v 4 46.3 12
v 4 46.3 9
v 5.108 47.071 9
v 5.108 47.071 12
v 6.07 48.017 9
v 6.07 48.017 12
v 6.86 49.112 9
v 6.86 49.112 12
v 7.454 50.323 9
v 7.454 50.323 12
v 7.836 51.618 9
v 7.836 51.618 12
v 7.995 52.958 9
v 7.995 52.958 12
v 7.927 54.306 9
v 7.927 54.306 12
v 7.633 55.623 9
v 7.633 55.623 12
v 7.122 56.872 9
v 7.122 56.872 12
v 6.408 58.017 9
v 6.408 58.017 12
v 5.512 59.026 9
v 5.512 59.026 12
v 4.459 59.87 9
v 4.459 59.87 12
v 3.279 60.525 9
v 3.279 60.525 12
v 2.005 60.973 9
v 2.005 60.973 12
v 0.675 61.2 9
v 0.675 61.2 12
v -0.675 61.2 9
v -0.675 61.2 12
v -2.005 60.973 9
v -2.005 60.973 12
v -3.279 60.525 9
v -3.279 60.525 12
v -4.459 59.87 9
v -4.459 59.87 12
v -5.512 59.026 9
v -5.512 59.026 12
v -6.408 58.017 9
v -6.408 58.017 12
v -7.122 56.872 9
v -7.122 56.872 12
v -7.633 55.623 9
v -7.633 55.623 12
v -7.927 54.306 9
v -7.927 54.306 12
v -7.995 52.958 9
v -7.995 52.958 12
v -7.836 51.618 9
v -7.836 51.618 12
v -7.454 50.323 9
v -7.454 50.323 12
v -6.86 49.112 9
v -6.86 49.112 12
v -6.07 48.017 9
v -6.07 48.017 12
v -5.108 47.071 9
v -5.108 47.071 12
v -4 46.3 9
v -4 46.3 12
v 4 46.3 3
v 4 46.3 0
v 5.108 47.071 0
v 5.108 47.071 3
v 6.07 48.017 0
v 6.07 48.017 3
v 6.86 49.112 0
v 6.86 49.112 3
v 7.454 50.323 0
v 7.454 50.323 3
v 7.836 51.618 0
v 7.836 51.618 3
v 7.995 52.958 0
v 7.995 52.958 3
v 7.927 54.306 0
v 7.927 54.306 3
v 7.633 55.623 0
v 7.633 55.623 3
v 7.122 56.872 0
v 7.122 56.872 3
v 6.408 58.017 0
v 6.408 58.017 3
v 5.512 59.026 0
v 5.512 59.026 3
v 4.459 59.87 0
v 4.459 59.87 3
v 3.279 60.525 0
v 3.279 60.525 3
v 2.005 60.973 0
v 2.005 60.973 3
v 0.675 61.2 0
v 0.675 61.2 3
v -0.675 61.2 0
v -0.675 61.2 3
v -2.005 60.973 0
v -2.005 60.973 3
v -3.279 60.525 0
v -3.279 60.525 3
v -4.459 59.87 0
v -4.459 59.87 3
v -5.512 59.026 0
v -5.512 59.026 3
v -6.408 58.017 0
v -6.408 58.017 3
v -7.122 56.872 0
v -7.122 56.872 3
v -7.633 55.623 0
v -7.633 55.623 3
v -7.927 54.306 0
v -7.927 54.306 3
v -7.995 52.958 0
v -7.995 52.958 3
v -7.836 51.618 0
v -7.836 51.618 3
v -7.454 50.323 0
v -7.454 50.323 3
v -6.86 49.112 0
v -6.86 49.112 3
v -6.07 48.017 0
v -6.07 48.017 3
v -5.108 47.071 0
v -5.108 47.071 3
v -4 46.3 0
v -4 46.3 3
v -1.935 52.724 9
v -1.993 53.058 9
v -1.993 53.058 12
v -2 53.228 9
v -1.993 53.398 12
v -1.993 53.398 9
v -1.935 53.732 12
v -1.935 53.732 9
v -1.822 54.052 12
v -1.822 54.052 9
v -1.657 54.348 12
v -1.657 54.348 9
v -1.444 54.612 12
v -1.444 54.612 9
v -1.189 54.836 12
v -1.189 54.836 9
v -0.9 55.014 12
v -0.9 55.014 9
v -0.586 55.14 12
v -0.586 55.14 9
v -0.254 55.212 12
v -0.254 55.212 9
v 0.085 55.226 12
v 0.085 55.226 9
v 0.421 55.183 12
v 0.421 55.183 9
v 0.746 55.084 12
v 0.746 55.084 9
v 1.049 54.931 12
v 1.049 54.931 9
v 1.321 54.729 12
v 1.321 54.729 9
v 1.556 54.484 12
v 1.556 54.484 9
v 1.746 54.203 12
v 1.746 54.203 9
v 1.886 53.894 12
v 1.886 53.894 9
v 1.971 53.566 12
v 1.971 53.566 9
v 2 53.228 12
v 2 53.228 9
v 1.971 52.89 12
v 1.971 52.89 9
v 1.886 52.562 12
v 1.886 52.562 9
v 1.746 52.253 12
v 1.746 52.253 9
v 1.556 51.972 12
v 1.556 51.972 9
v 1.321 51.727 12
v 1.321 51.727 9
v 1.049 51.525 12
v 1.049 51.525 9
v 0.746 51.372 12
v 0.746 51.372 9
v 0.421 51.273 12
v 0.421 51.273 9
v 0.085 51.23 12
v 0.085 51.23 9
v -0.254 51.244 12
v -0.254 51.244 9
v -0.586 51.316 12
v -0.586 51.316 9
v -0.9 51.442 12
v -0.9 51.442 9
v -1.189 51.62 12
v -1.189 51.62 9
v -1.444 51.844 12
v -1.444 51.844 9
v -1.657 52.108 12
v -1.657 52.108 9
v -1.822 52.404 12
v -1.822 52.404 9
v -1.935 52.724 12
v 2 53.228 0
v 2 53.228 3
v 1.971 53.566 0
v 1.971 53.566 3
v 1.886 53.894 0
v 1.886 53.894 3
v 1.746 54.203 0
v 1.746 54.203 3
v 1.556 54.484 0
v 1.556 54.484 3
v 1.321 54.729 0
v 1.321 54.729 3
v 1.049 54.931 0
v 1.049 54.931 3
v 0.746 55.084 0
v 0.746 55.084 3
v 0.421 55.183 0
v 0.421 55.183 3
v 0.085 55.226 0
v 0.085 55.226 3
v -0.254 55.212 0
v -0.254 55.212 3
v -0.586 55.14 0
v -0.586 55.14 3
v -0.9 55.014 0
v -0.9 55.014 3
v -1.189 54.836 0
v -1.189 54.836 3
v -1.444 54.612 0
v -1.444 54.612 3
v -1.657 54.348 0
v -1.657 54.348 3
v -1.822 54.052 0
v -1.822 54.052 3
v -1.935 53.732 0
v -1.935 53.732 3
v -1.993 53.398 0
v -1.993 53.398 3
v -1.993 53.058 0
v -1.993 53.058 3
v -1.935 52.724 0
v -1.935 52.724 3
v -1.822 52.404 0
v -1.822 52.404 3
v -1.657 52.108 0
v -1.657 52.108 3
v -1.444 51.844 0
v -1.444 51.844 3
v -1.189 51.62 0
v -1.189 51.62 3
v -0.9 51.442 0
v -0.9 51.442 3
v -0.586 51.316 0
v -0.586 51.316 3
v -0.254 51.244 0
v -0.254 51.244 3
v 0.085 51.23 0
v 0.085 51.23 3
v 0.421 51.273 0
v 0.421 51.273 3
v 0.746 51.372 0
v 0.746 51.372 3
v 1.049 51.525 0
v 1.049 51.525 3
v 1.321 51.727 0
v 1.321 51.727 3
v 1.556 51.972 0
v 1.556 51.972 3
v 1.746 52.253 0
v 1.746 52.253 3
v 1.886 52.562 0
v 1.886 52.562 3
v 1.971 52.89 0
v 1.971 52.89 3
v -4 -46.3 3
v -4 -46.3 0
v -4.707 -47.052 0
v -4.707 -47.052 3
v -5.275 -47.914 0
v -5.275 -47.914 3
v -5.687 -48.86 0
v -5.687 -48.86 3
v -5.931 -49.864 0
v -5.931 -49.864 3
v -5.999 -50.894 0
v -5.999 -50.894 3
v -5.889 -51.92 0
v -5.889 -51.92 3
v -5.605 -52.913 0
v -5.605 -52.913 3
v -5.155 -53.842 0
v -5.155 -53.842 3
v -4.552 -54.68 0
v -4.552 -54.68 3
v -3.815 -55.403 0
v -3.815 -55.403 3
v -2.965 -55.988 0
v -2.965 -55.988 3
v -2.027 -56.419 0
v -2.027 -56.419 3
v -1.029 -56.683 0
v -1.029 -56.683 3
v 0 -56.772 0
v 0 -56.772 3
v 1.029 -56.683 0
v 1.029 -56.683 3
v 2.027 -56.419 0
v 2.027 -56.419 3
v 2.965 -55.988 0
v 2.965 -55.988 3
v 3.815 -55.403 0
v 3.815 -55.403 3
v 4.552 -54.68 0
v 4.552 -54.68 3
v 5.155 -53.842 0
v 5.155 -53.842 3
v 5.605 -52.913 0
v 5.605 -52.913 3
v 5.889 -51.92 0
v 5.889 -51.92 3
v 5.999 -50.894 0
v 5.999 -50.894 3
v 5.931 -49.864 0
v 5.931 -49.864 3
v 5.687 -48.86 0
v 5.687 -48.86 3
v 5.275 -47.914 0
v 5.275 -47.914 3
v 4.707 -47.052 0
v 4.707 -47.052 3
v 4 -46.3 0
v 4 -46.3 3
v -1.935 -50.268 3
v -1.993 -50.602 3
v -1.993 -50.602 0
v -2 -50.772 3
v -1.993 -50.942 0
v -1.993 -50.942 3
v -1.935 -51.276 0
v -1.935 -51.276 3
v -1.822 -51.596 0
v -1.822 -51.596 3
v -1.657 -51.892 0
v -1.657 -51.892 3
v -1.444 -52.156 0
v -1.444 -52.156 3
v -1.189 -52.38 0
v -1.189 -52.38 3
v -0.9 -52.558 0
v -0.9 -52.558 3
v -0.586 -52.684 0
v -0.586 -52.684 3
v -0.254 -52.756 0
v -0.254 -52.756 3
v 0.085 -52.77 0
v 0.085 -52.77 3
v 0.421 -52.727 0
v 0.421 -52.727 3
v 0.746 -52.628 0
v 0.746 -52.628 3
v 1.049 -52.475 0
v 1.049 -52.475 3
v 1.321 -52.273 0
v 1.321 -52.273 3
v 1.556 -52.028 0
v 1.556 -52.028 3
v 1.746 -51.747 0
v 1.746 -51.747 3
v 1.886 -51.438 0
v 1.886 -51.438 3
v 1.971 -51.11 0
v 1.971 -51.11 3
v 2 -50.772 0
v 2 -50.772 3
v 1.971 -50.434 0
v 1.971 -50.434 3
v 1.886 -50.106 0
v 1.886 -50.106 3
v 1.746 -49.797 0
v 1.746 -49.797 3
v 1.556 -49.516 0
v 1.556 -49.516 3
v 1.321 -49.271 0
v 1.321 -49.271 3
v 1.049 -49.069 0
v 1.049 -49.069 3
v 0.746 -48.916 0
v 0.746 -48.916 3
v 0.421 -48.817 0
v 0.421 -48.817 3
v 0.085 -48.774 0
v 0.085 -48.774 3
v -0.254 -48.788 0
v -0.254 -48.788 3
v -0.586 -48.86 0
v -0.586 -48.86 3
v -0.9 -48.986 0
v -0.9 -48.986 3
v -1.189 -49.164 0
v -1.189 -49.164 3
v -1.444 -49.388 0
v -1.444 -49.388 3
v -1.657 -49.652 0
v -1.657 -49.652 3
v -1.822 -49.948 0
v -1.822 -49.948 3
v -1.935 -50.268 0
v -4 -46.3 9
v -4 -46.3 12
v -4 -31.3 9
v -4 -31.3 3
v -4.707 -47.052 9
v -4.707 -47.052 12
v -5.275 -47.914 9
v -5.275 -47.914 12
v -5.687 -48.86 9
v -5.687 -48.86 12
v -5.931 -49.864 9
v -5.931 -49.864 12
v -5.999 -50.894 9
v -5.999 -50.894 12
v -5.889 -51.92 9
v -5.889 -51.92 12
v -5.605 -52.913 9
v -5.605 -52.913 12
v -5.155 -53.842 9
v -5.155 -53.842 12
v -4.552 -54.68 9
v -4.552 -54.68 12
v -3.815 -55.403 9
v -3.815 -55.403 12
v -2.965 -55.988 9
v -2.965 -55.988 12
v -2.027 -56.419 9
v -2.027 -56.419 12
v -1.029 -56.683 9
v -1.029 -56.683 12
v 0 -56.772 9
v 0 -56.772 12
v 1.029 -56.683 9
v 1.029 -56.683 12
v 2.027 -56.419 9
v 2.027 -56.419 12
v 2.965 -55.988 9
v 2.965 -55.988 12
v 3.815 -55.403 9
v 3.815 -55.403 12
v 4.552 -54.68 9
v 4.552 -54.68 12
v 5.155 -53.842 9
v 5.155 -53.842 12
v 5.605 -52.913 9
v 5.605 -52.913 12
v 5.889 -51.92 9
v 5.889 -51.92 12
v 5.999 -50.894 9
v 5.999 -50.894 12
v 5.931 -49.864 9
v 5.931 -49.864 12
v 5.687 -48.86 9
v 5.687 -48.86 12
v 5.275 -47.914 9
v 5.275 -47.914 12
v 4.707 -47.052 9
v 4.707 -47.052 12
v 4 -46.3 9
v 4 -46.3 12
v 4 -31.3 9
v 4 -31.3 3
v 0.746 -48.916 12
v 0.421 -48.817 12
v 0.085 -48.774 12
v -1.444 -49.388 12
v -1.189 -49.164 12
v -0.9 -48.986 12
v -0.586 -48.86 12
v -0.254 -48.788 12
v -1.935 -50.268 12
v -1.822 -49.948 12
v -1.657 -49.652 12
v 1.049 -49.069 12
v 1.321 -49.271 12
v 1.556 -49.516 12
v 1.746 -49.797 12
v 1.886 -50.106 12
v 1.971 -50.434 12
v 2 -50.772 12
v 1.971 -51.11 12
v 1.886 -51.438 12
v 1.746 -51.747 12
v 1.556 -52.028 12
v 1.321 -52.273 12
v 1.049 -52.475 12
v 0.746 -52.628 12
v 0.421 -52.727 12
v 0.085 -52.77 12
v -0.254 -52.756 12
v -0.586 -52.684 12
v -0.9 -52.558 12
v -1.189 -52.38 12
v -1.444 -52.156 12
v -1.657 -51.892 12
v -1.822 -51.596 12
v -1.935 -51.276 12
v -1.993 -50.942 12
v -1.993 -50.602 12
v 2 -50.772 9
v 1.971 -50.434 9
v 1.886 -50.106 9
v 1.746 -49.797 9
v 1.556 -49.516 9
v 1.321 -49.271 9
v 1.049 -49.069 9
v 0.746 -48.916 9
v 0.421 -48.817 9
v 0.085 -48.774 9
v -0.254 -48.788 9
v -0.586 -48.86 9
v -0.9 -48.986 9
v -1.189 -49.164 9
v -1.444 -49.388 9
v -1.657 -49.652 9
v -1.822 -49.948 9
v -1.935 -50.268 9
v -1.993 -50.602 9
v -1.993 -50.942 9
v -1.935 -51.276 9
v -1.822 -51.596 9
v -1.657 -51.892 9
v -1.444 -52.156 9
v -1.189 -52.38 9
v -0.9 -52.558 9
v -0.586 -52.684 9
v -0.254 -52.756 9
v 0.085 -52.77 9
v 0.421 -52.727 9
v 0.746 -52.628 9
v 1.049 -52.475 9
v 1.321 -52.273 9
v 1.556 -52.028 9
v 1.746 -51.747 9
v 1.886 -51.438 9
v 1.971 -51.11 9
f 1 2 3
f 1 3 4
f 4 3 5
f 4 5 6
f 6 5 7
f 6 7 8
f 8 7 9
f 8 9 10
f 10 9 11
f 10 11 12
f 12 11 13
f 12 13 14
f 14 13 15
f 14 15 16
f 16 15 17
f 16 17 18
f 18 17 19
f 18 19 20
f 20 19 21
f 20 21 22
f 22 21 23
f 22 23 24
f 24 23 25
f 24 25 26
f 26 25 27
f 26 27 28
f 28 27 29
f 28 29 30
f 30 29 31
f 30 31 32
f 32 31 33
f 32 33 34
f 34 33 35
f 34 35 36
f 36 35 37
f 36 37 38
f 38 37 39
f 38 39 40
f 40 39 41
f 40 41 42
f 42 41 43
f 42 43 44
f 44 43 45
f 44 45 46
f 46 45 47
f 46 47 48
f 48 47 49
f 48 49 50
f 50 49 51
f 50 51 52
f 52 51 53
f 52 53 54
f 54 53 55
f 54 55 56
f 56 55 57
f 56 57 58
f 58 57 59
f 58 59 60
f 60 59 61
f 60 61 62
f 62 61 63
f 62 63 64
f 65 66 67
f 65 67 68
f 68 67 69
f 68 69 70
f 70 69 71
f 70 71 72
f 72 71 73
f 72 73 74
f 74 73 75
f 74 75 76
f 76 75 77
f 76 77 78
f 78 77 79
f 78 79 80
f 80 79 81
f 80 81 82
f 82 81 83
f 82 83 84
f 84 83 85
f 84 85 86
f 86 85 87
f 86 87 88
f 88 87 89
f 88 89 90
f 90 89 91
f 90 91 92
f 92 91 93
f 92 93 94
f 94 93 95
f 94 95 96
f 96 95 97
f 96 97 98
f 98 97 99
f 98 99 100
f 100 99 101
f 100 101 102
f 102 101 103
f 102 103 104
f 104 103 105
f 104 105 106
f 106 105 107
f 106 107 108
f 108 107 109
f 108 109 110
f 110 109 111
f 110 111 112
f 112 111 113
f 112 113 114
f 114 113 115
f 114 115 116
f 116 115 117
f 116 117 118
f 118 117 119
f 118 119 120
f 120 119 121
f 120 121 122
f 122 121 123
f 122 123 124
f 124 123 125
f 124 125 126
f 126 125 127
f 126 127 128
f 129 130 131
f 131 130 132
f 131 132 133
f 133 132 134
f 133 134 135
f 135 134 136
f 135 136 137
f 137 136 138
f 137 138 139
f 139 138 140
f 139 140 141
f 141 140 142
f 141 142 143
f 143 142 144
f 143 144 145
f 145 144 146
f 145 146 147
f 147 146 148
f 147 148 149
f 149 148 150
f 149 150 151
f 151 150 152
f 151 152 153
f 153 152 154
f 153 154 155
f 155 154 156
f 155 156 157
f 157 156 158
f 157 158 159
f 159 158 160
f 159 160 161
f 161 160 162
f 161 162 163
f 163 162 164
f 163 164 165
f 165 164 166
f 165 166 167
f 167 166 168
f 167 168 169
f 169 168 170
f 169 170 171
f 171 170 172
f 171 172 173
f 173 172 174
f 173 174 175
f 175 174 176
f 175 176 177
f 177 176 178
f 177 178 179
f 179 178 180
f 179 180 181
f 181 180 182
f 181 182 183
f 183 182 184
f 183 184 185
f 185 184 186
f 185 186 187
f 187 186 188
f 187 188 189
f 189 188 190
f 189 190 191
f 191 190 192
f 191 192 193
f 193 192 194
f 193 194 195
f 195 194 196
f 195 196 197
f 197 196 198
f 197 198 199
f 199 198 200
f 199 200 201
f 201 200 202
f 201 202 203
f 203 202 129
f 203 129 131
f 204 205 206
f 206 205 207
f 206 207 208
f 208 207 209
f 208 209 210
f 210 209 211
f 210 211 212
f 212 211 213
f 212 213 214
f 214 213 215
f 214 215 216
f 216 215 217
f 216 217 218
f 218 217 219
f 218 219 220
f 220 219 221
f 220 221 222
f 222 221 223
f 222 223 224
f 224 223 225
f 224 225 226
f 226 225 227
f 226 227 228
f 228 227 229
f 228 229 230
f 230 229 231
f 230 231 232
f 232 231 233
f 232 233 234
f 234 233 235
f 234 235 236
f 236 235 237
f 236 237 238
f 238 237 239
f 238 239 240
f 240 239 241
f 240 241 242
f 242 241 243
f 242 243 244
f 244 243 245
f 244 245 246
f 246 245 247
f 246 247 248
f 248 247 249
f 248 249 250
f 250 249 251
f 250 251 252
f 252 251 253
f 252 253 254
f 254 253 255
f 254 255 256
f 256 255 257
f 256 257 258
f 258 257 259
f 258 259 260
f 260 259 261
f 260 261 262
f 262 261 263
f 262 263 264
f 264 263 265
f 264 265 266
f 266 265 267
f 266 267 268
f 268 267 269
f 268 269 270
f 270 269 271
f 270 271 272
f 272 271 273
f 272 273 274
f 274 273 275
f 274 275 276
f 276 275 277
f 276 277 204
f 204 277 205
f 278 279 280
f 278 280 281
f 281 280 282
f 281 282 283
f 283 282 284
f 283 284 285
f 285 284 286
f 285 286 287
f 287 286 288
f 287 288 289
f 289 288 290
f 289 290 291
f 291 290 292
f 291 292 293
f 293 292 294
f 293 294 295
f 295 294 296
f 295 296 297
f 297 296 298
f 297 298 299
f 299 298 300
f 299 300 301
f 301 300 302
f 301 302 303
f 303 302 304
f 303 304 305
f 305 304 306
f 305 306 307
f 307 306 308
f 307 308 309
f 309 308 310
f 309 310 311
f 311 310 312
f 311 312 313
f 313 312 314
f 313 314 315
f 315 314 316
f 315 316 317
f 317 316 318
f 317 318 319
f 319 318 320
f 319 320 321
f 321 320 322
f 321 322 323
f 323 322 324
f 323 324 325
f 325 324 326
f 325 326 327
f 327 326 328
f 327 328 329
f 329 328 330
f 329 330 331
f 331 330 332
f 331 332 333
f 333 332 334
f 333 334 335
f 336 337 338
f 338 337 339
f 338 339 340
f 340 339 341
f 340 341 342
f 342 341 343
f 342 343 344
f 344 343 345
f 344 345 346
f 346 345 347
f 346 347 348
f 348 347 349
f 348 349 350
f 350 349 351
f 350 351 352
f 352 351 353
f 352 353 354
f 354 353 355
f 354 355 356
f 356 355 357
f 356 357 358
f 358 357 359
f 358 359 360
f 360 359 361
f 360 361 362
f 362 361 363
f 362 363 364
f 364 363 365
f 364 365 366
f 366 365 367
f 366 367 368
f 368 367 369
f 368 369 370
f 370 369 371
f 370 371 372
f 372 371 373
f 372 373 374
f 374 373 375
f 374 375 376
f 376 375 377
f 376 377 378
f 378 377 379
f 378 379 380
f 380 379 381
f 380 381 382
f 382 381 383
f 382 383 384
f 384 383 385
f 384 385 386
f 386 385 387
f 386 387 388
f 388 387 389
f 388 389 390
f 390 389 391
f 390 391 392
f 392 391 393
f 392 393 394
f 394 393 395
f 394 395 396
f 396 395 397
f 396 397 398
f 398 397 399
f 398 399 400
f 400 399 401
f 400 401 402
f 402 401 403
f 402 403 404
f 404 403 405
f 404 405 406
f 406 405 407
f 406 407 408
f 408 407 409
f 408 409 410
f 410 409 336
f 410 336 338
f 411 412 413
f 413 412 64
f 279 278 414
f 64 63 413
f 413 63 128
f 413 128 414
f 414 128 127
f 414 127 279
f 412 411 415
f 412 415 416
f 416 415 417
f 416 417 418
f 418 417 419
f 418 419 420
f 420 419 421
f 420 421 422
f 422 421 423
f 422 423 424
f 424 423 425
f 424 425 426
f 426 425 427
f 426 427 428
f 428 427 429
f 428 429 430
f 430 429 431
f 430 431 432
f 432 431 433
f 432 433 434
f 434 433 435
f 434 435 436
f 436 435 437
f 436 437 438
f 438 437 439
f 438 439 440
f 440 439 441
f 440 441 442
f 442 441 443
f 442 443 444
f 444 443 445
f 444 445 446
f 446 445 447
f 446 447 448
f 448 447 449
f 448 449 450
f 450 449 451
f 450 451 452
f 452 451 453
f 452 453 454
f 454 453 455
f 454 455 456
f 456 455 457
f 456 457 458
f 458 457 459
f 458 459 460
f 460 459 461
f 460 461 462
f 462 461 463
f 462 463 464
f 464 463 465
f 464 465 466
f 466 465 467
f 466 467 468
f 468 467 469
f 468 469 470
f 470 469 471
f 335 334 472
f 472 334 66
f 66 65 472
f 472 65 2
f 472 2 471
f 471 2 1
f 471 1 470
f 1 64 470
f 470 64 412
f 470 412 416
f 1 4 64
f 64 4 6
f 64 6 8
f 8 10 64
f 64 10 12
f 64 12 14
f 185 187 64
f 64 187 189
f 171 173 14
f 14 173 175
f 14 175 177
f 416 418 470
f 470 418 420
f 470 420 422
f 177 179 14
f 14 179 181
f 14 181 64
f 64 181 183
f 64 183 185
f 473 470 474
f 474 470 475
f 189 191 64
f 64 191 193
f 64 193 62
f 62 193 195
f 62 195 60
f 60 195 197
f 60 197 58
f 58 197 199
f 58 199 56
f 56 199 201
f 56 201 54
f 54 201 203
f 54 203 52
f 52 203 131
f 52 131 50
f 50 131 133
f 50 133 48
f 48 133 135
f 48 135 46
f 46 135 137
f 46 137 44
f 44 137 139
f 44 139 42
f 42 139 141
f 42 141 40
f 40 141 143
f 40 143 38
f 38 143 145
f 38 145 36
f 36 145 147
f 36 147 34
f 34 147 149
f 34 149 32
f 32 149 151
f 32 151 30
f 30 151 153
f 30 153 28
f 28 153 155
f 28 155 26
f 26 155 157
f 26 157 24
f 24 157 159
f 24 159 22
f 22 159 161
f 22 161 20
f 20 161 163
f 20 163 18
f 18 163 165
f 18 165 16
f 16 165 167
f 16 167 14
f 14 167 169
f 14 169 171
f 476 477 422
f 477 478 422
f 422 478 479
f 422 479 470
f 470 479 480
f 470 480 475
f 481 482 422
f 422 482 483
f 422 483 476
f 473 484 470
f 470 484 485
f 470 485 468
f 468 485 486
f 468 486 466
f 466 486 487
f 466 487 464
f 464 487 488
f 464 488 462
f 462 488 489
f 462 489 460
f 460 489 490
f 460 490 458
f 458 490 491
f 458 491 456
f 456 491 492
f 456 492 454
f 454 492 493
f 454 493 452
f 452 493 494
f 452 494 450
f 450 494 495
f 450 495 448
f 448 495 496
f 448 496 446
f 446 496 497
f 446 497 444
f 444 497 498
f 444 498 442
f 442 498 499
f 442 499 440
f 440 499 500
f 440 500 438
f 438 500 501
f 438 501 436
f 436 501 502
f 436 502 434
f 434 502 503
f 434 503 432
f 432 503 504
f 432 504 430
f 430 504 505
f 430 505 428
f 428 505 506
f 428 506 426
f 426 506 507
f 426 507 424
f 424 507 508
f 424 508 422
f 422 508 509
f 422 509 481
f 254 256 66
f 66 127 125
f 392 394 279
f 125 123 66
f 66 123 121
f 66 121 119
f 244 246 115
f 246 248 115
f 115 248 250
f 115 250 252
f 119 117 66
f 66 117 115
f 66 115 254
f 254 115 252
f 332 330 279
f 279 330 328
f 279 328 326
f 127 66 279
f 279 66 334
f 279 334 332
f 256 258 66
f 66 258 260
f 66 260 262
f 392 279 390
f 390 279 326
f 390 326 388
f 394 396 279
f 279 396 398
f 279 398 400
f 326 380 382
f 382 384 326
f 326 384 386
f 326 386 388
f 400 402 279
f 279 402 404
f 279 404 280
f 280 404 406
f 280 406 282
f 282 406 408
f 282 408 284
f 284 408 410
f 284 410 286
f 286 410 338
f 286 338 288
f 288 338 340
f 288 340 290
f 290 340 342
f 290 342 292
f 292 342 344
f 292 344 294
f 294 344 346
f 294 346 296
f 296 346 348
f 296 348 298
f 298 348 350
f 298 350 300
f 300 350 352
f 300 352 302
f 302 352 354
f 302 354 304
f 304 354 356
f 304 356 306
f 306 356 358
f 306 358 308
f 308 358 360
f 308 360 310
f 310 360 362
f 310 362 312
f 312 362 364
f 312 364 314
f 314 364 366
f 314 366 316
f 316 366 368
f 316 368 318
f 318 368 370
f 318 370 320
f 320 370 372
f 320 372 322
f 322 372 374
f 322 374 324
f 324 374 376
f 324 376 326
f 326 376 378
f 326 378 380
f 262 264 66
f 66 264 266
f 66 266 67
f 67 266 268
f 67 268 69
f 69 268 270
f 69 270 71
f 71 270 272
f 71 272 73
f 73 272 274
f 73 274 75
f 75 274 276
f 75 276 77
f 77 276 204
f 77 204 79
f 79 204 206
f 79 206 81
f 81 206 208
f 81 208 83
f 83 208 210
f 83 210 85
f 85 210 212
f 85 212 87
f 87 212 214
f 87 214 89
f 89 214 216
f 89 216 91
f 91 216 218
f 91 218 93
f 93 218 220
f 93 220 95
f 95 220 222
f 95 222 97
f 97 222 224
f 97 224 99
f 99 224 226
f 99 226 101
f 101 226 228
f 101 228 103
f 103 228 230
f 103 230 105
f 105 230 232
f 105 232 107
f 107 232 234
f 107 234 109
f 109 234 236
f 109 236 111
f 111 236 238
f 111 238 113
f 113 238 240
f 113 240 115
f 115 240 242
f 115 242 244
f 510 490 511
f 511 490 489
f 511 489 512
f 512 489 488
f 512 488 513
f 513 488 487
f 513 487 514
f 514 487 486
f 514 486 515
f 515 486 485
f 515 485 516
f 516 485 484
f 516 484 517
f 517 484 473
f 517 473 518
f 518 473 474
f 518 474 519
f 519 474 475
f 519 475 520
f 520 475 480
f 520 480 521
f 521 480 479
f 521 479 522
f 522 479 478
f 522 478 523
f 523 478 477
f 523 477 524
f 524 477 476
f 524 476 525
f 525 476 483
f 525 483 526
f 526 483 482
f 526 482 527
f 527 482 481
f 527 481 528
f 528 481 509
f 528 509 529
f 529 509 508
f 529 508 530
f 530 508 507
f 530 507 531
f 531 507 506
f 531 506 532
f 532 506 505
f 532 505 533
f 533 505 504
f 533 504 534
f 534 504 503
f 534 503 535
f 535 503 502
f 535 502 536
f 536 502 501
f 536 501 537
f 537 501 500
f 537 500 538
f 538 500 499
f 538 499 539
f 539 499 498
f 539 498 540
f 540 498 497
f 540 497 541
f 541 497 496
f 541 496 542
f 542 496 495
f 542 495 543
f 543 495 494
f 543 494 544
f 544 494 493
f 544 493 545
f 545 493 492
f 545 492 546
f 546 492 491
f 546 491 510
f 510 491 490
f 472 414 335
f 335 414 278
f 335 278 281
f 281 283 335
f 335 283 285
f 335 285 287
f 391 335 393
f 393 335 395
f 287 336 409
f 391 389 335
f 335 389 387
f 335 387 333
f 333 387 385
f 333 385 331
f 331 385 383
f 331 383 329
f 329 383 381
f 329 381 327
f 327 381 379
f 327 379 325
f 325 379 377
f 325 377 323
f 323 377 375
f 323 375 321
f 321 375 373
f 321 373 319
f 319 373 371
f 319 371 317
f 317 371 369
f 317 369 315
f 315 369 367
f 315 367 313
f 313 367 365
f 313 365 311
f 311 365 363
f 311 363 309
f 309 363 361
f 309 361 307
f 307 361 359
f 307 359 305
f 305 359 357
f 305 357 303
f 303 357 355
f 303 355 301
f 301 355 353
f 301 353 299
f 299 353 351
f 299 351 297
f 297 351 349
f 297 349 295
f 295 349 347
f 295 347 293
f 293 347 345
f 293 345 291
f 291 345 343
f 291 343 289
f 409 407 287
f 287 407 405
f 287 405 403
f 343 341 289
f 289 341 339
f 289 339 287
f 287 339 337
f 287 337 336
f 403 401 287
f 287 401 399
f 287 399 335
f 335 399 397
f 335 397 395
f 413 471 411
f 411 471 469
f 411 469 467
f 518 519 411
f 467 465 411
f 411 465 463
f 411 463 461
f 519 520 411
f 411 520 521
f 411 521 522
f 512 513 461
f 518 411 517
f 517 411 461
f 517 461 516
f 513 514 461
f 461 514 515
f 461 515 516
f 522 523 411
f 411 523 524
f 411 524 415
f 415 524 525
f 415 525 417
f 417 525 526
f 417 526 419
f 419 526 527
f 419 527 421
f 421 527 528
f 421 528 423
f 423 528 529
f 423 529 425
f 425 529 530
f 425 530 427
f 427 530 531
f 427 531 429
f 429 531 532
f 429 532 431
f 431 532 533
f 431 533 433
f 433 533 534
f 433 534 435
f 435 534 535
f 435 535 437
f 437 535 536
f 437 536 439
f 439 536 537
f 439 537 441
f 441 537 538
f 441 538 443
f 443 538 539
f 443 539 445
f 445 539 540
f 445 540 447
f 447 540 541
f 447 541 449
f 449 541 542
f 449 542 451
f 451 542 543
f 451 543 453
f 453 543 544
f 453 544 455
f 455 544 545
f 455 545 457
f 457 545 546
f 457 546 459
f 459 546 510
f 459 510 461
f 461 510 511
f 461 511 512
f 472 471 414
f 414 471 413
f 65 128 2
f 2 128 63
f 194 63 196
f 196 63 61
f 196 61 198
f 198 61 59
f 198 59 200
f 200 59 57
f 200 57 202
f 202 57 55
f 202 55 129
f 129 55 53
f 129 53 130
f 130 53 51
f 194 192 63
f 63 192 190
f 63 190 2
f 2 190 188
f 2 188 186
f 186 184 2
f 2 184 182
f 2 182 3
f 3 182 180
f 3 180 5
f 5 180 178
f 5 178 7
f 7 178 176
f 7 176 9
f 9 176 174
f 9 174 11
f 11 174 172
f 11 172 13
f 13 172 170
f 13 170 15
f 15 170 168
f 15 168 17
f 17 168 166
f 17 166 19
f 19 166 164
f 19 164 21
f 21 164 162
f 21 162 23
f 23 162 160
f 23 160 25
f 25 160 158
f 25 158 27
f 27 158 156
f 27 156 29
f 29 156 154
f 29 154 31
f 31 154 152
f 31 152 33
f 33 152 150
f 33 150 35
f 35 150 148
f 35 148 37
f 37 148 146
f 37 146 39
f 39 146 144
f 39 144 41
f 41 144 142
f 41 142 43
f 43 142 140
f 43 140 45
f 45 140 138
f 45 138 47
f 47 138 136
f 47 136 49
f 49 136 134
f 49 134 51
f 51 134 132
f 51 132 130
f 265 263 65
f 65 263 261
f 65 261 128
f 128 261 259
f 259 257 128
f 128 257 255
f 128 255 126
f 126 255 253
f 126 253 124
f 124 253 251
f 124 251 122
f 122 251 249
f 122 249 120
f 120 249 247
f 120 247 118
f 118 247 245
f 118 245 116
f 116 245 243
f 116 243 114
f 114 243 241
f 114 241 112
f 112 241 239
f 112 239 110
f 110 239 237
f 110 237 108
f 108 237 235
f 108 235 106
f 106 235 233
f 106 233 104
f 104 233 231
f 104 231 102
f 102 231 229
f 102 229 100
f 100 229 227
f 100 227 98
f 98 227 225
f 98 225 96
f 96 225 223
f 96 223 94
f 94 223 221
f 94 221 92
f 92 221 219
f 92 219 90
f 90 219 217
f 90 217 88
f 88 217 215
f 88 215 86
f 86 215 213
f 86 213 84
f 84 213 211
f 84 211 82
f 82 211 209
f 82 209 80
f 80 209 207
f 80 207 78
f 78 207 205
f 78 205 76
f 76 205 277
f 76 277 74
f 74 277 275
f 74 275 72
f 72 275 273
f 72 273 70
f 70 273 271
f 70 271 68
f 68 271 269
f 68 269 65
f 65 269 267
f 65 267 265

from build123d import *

# Parameters (mm, degrees)
SALIENTE_EXTRUIR1_DEPTH = 12
CROQUIS3_R              = 2
CORTAR_EXTRUIR1_DEPTH   = 63.903673209
CROQUIS4_W              = 30
CROQUIS4_H              = 6
CORTAR_EXTRUIR2_DEPTH   = 14
CROQUIS5_W              = 8
CROQUIS5_H              = 6
CORTAR_EXTRUIR3_DEPTH   = 15
CROQUIS8_W              = 30
CROQUIS8_H              = 6
CORTAR_EXTRUIR6_DEPTH   = 39


with BuildPart() as part:
    # Croquis1 → Saliente-Extruir1 (new body)
    with BuildSketch(Plane.XY):
        with BuildLine():
            Line((-4, 46.299830407), (-4, -46.299830407))
            ThreePointArc((-4, -46.299830407), (0, -56.771966362), (4, -46.299830407))
            Line((4, -46.299830407), (4, 46.299830407))
            ThreePointArc((4, 46.299830407), (0, 61.228033638), (-4, 46.299830407))
        make_face()
    extrude(amount=SALIENTE_EXTRUIR1_DEPTH)

    # Croquis3 → Cortar-Extruir1 (cut, through all)
    with BuildSketch(Plane.XY.offset(12)):
        with Locations((0, 53.228033638)):
            Circle(CROQUIS3_R)
        with Locations((0, -50.771966362)):
            Circle(CROQUIS3_R)
    extrude(amount=-CORTAR_EXTRUIR1_DEPTH, mode=Mode.SUBTRACT)

    # Croquis4 → Cortar-Extruir2 (cut)
    with BuildSketch(Plane(origin=(0, -46.299830407, 0), x_dir=(1, 0, 0), z_dir=(0, 1, 0))):
        with Locations((0, -6)):
            Rectangle(CROQUIS4_W, CROQUIS4_H)
    extrude(amount=-CORTAR_EXTRUIR2_DEPTH, mode=Mode.SUBTRACT)

    # Croquis5 → Cortar-Extruir3 (cut)
    with BuildSketch(Plane.XZ.offset(46.299830407)):
        with Locations((0, 6)):
            Rectangle(CROQUIS5_W, CROQUIS5_H)
    extrude(amount=-CORTAR_EXTRUIR3_DEPTH, mode=Mode.SUBTRACT)

    # Croquis8 → Cortar-Extruir6 (cut)
    with BuildSketch(Plane(origin=(0, 46.299830407, 0), x_dir=(1, 0, 0), z_dir=(0, 1, 0))):
        with Locations((0, -6)):
            Rectangle(CROQUIS8_W, CROQUIS8_H)
    extrude(amount=CORTAR_EXTRUIR6_DEPTH, mode=Mode.SUBTRACT)


solid = part.part
